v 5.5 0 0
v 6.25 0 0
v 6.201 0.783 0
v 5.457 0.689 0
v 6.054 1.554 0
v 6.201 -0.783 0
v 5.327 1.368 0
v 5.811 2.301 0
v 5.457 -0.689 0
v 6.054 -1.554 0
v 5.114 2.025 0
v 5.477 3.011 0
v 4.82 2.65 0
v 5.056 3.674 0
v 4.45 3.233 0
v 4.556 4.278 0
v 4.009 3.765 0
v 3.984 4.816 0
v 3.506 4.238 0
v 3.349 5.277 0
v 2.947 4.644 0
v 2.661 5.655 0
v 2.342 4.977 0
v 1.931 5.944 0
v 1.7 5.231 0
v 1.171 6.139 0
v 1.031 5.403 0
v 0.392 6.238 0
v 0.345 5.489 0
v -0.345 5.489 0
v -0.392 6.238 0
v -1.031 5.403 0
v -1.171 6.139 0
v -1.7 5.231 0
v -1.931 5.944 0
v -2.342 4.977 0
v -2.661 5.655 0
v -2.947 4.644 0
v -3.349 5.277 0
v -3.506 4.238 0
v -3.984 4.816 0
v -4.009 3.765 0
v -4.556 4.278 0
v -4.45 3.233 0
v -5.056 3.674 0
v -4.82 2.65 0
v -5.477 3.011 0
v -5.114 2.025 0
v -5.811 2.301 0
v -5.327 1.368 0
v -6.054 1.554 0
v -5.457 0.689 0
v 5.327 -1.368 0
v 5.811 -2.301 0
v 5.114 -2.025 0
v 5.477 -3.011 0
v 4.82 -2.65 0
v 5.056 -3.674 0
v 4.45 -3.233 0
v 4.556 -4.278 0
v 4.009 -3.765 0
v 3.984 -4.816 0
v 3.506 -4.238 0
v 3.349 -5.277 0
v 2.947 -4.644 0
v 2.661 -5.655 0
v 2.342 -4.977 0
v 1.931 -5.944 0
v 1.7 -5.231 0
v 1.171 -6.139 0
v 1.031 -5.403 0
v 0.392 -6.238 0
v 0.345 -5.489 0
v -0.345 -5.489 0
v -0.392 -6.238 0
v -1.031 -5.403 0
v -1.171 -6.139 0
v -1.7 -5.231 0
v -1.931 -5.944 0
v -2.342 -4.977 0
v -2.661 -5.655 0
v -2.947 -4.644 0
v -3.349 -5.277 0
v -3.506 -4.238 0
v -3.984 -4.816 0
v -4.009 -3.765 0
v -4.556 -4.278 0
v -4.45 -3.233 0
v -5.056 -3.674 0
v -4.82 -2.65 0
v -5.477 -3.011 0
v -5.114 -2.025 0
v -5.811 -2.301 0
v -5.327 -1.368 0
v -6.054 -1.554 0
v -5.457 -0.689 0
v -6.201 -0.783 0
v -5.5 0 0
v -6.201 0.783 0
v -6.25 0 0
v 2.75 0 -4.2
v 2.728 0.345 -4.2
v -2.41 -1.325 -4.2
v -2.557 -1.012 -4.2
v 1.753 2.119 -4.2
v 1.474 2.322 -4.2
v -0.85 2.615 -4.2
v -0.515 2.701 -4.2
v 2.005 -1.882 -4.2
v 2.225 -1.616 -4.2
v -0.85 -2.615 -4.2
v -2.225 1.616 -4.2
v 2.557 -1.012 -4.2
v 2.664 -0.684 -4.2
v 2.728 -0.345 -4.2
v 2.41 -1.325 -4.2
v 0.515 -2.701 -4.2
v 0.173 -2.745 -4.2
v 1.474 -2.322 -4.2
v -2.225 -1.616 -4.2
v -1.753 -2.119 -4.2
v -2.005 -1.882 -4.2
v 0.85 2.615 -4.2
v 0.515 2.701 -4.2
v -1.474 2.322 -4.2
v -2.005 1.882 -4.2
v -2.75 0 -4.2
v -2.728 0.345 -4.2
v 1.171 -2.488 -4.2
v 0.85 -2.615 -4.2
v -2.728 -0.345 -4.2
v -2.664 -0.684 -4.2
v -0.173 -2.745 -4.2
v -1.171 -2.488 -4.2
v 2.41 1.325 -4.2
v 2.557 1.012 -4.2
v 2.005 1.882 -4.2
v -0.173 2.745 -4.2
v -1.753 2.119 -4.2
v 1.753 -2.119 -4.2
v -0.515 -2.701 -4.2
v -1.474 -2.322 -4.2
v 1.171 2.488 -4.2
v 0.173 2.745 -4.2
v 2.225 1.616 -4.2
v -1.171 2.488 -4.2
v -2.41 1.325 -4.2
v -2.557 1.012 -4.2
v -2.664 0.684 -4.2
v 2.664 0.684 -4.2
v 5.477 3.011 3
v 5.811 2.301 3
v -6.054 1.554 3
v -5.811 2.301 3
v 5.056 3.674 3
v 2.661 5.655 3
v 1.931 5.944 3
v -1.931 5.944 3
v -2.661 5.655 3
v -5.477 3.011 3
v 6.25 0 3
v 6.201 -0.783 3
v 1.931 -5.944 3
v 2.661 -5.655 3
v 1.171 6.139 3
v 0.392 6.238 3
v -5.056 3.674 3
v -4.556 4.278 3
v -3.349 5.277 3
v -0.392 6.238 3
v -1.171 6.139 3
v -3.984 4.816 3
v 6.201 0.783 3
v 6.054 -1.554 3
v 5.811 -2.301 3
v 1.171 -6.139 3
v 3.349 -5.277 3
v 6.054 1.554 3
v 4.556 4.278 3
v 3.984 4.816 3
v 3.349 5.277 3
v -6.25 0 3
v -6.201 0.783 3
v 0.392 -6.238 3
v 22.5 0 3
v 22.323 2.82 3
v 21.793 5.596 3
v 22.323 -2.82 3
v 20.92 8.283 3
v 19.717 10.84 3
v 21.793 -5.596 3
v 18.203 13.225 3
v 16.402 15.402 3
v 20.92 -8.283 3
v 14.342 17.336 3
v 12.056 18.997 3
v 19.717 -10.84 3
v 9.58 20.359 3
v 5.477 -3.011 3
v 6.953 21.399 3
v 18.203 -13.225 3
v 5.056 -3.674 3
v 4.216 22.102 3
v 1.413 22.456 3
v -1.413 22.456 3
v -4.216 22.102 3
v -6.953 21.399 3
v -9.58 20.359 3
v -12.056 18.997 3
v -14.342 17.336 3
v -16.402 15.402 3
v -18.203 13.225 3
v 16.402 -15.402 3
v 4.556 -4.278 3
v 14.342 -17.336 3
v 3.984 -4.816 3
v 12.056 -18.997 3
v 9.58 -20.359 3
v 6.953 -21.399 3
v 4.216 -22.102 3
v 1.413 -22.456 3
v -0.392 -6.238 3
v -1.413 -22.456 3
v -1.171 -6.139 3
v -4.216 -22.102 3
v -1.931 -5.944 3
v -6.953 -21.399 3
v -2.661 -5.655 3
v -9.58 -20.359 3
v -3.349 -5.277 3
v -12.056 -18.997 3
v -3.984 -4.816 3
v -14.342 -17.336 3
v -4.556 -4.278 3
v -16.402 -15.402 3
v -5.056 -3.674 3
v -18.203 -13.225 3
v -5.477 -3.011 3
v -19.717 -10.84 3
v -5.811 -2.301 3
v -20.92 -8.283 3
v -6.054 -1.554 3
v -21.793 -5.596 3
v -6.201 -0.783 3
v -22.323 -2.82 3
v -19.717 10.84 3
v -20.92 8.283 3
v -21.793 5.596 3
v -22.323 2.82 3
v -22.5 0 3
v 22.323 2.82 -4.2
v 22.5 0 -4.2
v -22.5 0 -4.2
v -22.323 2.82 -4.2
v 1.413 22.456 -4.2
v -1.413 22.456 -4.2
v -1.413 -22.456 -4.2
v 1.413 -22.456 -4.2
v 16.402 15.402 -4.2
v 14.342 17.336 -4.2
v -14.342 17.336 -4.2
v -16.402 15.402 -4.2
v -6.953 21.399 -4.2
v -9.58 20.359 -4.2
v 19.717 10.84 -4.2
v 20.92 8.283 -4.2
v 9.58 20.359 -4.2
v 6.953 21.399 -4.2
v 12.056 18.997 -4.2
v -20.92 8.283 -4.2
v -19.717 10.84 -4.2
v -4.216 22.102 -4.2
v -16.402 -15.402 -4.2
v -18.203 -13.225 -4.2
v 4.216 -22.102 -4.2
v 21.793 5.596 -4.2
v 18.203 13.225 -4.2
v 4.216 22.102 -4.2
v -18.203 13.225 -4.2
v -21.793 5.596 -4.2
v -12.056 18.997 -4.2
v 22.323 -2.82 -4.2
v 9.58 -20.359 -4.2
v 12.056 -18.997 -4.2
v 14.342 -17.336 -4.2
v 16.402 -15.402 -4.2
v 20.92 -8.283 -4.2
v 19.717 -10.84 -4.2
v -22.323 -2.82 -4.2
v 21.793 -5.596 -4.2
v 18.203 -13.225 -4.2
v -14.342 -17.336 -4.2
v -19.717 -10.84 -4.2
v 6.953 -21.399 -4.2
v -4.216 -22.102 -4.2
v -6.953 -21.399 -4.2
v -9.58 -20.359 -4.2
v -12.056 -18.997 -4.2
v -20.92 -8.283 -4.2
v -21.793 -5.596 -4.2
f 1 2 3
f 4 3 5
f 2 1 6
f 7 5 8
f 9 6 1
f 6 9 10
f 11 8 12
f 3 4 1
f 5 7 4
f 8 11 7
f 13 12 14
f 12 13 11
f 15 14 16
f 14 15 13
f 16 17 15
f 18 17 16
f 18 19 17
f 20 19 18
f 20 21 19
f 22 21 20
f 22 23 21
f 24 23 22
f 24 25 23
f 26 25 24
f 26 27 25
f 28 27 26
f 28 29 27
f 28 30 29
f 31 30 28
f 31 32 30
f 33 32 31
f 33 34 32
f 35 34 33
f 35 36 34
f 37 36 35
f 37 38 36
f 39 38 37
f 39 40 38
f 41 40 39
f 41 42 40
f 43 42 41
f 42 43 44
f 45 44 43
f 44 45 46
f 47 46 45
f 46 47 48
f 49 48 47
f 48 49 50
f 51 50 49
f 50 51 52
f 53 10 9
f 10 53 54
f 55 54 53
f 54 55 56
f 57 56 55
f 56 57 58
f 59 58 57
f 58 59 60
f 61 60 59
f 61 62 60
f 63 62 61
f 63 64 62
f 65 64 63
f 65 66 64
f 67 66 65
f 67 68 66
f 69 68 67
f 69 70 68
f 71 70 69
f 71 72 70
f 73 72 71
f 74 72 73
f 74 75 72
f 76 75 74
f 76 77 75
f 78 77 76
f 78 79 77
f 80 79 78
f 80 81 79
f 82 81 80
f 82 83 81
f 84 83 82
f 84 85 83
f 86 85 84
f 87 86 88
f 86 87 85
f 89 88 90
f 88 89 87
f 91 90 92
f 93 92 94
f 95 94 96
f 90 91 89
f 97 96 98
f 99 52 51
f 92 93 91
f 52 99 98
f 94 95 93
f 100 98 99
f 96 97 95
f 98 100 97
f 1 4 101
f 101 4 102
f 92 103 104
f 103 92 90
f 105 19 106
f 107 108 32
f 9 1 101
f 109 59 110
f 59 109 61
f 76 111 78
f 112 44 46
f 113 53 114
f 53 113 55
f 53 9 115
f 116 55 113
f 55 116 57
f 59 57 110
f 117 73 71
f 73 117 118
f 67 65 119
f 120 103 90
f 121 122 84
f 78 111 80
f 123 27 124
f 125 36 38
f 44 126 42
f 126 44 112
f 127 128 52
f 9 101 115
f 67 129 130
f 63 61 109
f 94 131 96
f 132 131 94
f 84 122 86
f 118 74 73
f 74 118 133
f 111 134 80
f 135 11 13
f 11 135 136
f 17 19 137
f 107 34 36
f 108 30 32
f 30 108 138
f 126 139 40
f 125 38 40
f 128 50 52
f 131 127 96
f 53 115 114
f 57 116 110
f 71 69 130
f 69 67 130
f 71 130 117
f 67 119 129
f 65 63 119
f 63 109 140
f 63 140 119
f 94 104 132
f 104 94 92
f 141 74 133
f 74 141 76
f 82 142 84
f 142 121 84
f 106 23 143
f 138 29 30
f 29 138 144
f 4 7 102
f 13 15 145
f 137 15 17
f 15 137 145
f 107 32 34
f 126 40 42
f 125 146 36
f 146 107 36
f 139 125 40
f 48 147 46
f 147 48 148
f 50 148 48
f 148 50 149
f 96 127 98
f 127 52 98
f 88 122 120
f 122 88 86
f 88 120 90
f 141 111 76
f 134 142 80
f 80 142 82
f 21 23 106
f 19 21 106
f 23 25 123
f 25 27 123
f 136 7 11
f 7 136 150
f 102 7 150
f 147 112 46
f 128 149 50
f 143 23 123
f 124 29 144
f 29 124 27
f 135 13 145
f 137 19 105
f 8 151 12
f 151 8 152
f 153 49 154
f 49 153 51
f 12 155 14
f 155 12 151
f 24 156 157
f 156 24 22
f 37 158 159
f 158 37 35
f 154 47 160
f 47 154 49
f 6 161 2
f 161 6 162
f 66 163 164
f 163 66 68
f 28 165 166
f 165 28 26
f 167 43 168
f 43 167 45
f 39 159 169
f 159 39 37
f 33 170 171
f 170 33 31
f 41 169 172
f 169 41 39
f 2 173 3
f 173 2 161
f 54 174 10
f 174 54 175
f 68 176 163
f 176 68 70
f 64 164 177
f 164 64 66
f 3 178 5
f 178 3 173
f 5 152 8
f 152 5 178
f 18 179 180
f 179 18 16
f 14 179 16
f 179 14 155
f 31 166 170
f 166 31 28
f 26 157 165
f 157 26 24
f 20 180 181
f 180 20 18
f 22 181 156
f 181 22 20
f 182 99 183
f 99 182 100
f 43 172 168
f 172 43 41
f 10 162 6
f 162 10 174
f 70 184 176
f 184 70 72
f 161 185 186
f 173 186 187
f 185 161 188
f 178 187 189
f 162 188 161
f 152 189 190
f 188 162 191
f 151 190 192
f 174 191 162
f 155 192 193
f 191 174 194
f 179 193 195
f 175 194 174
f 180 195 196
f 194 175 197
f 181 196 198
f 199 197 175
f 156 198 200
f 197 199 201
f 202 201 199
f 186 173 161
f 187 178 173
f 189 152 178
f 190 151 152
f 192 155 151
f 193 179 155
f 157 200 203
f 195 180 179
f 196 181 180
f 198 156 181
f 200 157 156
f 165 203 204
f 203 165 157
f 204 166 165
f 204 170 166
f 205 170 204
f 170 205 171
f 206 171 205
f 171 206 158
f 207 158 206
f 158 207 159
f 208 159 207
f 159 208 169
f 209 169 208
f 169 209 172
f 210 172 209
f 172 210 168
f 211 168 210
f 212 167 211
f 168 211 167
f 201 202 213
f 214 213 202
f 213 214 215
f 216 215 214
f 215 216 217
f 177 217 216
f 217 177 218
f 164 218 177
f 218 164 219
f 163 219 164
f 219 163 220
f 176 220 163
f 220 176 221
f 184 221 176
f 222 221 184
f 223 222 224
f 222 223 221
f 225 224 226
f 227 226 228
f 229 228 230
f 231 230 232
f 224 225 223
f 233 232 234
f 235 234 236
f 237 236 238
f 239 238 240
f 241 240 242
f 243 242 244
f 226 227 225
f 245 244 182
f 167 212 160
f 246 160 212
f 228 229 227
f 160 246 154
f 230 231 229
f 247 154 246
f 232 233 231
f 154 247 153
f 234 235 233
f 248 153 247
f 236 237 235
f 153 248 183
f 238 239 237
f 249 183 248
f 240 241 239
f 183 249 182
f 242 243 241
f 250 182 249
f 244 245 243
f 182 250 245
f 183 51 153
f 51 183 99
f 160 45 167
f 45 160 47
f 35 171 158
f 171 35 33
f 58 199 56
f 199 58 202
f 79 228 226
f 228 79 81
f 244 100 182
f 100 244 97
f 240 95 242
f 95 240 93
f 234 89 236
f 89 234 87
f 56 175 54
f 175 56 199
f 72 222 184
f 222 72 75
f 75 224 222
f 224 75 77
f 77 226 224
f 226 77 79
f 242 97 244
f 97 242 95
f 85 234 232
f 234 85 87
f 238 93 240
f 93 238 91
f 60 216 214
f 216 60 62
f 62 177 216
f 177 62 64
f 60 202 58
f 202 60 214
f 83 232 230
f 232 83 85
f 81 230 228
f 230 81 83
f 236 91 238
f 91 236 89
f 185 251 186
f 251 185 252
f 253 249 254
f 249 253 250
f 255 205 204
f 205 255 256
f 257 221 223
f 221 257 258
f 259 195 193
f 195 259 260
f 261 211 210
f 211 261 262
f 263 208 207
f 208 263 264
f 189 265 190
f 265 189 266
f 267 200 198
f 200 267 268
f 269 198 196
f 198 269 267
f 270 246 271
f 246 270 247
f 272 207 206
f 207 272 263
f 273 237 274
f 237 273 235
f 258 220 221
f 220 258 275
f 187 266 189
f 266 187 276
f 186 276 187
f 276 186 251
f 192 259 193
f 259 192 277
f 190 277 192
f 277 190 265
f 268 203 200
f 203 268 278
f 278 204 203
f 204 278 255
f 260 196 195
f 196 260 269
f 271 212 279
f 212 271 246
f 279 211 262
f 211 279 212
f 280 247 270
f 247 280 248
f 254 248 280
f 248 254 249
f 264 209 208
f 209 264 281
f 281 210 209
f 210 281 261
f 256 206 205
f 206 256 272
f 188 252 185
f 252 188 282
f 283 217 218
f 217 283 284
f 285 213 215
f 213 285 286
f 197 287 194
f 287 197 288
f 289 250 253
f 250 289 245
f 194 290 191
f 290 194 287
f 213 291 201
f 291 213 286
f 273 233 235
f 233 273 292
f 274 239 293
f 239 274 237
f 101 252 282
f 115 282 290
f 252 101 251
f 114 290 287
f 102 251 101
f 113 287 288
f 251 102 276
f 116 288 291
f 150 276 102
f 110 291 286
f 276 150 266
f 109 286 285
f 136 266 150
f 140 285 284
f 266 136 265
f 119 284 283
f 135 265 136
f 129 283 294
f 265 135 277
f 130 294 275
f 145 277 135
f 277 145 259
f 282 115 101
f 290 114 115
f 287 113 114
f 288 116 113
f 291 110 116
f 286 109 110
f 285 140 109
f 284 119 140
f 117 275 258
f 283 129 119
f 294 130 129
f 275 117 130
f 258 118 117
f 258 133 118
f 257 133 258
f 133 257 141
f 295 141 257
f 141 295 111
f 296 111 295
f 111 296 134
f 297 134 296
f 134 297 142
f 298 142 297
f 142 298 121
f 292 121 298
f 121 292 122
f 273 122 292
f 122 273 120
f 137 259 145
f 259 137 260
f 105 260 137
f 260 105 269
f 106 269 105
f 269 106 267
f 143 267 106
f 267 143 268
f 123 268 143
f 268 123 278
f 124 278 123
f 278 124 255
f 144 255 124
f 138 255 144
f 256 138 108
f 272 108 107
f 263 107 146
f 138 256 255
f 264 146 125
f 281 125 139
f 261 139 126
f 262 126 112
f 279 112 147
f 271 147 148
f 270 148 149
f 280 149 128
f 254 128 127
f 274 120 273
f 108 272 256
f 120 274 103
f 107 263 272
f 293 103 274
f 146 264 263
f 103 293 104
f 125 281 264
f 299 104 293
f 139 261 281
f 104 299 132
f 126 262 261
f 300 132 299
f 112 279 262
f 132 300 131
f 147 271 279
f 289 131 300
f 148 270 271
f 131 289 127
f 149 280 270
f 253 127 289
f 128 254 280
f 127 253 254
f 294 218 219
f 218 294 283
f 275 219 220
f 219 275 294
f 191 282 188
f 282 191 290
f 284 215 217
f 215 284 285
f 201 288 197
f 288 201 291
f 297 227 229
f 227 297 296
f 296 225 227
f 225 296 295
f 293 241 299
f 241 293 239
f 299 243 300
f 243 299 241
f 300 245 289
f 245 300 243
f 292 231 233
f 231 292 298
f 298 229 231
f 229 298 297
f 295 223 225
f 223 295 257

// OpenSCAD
$fn = 50;


difference() {
	union() {
		translate(v = [0, 0, -4.2000000000]) {
			cylinder(h = 7.2000000000, r = 22.5000000000);
		}
	}
	union() {
		translate(v = [0, 0, 0]) {
			rotate(a = [0, 0, 0]) {
				difference() {
					union() {
						translate(v = [0, 0, -7.2000000000]) {
							cylinder(h = 7.2000000000, r = 2.2500000000);
						}
						translate(v = [0, 0, -4.2000000000]) {
							cylinder(h = 4.2000000000, r1 = 2.7500000000, r2 = 5.5000000000);
						}
						translate(v = [0, 0, -7.2000000000]) {
							cylinder(h = 7.2000000000, r = 2.7500000000);
						}
						translate(v = [0, 0, -7.2000000000]) {
							cylinder(h = 7.2000000000, r = 2.2500000000);
						}
					}
					union();
				}
			}
		}
		#cylinder(h = 3, r = 6.2500000000);
	}
}
